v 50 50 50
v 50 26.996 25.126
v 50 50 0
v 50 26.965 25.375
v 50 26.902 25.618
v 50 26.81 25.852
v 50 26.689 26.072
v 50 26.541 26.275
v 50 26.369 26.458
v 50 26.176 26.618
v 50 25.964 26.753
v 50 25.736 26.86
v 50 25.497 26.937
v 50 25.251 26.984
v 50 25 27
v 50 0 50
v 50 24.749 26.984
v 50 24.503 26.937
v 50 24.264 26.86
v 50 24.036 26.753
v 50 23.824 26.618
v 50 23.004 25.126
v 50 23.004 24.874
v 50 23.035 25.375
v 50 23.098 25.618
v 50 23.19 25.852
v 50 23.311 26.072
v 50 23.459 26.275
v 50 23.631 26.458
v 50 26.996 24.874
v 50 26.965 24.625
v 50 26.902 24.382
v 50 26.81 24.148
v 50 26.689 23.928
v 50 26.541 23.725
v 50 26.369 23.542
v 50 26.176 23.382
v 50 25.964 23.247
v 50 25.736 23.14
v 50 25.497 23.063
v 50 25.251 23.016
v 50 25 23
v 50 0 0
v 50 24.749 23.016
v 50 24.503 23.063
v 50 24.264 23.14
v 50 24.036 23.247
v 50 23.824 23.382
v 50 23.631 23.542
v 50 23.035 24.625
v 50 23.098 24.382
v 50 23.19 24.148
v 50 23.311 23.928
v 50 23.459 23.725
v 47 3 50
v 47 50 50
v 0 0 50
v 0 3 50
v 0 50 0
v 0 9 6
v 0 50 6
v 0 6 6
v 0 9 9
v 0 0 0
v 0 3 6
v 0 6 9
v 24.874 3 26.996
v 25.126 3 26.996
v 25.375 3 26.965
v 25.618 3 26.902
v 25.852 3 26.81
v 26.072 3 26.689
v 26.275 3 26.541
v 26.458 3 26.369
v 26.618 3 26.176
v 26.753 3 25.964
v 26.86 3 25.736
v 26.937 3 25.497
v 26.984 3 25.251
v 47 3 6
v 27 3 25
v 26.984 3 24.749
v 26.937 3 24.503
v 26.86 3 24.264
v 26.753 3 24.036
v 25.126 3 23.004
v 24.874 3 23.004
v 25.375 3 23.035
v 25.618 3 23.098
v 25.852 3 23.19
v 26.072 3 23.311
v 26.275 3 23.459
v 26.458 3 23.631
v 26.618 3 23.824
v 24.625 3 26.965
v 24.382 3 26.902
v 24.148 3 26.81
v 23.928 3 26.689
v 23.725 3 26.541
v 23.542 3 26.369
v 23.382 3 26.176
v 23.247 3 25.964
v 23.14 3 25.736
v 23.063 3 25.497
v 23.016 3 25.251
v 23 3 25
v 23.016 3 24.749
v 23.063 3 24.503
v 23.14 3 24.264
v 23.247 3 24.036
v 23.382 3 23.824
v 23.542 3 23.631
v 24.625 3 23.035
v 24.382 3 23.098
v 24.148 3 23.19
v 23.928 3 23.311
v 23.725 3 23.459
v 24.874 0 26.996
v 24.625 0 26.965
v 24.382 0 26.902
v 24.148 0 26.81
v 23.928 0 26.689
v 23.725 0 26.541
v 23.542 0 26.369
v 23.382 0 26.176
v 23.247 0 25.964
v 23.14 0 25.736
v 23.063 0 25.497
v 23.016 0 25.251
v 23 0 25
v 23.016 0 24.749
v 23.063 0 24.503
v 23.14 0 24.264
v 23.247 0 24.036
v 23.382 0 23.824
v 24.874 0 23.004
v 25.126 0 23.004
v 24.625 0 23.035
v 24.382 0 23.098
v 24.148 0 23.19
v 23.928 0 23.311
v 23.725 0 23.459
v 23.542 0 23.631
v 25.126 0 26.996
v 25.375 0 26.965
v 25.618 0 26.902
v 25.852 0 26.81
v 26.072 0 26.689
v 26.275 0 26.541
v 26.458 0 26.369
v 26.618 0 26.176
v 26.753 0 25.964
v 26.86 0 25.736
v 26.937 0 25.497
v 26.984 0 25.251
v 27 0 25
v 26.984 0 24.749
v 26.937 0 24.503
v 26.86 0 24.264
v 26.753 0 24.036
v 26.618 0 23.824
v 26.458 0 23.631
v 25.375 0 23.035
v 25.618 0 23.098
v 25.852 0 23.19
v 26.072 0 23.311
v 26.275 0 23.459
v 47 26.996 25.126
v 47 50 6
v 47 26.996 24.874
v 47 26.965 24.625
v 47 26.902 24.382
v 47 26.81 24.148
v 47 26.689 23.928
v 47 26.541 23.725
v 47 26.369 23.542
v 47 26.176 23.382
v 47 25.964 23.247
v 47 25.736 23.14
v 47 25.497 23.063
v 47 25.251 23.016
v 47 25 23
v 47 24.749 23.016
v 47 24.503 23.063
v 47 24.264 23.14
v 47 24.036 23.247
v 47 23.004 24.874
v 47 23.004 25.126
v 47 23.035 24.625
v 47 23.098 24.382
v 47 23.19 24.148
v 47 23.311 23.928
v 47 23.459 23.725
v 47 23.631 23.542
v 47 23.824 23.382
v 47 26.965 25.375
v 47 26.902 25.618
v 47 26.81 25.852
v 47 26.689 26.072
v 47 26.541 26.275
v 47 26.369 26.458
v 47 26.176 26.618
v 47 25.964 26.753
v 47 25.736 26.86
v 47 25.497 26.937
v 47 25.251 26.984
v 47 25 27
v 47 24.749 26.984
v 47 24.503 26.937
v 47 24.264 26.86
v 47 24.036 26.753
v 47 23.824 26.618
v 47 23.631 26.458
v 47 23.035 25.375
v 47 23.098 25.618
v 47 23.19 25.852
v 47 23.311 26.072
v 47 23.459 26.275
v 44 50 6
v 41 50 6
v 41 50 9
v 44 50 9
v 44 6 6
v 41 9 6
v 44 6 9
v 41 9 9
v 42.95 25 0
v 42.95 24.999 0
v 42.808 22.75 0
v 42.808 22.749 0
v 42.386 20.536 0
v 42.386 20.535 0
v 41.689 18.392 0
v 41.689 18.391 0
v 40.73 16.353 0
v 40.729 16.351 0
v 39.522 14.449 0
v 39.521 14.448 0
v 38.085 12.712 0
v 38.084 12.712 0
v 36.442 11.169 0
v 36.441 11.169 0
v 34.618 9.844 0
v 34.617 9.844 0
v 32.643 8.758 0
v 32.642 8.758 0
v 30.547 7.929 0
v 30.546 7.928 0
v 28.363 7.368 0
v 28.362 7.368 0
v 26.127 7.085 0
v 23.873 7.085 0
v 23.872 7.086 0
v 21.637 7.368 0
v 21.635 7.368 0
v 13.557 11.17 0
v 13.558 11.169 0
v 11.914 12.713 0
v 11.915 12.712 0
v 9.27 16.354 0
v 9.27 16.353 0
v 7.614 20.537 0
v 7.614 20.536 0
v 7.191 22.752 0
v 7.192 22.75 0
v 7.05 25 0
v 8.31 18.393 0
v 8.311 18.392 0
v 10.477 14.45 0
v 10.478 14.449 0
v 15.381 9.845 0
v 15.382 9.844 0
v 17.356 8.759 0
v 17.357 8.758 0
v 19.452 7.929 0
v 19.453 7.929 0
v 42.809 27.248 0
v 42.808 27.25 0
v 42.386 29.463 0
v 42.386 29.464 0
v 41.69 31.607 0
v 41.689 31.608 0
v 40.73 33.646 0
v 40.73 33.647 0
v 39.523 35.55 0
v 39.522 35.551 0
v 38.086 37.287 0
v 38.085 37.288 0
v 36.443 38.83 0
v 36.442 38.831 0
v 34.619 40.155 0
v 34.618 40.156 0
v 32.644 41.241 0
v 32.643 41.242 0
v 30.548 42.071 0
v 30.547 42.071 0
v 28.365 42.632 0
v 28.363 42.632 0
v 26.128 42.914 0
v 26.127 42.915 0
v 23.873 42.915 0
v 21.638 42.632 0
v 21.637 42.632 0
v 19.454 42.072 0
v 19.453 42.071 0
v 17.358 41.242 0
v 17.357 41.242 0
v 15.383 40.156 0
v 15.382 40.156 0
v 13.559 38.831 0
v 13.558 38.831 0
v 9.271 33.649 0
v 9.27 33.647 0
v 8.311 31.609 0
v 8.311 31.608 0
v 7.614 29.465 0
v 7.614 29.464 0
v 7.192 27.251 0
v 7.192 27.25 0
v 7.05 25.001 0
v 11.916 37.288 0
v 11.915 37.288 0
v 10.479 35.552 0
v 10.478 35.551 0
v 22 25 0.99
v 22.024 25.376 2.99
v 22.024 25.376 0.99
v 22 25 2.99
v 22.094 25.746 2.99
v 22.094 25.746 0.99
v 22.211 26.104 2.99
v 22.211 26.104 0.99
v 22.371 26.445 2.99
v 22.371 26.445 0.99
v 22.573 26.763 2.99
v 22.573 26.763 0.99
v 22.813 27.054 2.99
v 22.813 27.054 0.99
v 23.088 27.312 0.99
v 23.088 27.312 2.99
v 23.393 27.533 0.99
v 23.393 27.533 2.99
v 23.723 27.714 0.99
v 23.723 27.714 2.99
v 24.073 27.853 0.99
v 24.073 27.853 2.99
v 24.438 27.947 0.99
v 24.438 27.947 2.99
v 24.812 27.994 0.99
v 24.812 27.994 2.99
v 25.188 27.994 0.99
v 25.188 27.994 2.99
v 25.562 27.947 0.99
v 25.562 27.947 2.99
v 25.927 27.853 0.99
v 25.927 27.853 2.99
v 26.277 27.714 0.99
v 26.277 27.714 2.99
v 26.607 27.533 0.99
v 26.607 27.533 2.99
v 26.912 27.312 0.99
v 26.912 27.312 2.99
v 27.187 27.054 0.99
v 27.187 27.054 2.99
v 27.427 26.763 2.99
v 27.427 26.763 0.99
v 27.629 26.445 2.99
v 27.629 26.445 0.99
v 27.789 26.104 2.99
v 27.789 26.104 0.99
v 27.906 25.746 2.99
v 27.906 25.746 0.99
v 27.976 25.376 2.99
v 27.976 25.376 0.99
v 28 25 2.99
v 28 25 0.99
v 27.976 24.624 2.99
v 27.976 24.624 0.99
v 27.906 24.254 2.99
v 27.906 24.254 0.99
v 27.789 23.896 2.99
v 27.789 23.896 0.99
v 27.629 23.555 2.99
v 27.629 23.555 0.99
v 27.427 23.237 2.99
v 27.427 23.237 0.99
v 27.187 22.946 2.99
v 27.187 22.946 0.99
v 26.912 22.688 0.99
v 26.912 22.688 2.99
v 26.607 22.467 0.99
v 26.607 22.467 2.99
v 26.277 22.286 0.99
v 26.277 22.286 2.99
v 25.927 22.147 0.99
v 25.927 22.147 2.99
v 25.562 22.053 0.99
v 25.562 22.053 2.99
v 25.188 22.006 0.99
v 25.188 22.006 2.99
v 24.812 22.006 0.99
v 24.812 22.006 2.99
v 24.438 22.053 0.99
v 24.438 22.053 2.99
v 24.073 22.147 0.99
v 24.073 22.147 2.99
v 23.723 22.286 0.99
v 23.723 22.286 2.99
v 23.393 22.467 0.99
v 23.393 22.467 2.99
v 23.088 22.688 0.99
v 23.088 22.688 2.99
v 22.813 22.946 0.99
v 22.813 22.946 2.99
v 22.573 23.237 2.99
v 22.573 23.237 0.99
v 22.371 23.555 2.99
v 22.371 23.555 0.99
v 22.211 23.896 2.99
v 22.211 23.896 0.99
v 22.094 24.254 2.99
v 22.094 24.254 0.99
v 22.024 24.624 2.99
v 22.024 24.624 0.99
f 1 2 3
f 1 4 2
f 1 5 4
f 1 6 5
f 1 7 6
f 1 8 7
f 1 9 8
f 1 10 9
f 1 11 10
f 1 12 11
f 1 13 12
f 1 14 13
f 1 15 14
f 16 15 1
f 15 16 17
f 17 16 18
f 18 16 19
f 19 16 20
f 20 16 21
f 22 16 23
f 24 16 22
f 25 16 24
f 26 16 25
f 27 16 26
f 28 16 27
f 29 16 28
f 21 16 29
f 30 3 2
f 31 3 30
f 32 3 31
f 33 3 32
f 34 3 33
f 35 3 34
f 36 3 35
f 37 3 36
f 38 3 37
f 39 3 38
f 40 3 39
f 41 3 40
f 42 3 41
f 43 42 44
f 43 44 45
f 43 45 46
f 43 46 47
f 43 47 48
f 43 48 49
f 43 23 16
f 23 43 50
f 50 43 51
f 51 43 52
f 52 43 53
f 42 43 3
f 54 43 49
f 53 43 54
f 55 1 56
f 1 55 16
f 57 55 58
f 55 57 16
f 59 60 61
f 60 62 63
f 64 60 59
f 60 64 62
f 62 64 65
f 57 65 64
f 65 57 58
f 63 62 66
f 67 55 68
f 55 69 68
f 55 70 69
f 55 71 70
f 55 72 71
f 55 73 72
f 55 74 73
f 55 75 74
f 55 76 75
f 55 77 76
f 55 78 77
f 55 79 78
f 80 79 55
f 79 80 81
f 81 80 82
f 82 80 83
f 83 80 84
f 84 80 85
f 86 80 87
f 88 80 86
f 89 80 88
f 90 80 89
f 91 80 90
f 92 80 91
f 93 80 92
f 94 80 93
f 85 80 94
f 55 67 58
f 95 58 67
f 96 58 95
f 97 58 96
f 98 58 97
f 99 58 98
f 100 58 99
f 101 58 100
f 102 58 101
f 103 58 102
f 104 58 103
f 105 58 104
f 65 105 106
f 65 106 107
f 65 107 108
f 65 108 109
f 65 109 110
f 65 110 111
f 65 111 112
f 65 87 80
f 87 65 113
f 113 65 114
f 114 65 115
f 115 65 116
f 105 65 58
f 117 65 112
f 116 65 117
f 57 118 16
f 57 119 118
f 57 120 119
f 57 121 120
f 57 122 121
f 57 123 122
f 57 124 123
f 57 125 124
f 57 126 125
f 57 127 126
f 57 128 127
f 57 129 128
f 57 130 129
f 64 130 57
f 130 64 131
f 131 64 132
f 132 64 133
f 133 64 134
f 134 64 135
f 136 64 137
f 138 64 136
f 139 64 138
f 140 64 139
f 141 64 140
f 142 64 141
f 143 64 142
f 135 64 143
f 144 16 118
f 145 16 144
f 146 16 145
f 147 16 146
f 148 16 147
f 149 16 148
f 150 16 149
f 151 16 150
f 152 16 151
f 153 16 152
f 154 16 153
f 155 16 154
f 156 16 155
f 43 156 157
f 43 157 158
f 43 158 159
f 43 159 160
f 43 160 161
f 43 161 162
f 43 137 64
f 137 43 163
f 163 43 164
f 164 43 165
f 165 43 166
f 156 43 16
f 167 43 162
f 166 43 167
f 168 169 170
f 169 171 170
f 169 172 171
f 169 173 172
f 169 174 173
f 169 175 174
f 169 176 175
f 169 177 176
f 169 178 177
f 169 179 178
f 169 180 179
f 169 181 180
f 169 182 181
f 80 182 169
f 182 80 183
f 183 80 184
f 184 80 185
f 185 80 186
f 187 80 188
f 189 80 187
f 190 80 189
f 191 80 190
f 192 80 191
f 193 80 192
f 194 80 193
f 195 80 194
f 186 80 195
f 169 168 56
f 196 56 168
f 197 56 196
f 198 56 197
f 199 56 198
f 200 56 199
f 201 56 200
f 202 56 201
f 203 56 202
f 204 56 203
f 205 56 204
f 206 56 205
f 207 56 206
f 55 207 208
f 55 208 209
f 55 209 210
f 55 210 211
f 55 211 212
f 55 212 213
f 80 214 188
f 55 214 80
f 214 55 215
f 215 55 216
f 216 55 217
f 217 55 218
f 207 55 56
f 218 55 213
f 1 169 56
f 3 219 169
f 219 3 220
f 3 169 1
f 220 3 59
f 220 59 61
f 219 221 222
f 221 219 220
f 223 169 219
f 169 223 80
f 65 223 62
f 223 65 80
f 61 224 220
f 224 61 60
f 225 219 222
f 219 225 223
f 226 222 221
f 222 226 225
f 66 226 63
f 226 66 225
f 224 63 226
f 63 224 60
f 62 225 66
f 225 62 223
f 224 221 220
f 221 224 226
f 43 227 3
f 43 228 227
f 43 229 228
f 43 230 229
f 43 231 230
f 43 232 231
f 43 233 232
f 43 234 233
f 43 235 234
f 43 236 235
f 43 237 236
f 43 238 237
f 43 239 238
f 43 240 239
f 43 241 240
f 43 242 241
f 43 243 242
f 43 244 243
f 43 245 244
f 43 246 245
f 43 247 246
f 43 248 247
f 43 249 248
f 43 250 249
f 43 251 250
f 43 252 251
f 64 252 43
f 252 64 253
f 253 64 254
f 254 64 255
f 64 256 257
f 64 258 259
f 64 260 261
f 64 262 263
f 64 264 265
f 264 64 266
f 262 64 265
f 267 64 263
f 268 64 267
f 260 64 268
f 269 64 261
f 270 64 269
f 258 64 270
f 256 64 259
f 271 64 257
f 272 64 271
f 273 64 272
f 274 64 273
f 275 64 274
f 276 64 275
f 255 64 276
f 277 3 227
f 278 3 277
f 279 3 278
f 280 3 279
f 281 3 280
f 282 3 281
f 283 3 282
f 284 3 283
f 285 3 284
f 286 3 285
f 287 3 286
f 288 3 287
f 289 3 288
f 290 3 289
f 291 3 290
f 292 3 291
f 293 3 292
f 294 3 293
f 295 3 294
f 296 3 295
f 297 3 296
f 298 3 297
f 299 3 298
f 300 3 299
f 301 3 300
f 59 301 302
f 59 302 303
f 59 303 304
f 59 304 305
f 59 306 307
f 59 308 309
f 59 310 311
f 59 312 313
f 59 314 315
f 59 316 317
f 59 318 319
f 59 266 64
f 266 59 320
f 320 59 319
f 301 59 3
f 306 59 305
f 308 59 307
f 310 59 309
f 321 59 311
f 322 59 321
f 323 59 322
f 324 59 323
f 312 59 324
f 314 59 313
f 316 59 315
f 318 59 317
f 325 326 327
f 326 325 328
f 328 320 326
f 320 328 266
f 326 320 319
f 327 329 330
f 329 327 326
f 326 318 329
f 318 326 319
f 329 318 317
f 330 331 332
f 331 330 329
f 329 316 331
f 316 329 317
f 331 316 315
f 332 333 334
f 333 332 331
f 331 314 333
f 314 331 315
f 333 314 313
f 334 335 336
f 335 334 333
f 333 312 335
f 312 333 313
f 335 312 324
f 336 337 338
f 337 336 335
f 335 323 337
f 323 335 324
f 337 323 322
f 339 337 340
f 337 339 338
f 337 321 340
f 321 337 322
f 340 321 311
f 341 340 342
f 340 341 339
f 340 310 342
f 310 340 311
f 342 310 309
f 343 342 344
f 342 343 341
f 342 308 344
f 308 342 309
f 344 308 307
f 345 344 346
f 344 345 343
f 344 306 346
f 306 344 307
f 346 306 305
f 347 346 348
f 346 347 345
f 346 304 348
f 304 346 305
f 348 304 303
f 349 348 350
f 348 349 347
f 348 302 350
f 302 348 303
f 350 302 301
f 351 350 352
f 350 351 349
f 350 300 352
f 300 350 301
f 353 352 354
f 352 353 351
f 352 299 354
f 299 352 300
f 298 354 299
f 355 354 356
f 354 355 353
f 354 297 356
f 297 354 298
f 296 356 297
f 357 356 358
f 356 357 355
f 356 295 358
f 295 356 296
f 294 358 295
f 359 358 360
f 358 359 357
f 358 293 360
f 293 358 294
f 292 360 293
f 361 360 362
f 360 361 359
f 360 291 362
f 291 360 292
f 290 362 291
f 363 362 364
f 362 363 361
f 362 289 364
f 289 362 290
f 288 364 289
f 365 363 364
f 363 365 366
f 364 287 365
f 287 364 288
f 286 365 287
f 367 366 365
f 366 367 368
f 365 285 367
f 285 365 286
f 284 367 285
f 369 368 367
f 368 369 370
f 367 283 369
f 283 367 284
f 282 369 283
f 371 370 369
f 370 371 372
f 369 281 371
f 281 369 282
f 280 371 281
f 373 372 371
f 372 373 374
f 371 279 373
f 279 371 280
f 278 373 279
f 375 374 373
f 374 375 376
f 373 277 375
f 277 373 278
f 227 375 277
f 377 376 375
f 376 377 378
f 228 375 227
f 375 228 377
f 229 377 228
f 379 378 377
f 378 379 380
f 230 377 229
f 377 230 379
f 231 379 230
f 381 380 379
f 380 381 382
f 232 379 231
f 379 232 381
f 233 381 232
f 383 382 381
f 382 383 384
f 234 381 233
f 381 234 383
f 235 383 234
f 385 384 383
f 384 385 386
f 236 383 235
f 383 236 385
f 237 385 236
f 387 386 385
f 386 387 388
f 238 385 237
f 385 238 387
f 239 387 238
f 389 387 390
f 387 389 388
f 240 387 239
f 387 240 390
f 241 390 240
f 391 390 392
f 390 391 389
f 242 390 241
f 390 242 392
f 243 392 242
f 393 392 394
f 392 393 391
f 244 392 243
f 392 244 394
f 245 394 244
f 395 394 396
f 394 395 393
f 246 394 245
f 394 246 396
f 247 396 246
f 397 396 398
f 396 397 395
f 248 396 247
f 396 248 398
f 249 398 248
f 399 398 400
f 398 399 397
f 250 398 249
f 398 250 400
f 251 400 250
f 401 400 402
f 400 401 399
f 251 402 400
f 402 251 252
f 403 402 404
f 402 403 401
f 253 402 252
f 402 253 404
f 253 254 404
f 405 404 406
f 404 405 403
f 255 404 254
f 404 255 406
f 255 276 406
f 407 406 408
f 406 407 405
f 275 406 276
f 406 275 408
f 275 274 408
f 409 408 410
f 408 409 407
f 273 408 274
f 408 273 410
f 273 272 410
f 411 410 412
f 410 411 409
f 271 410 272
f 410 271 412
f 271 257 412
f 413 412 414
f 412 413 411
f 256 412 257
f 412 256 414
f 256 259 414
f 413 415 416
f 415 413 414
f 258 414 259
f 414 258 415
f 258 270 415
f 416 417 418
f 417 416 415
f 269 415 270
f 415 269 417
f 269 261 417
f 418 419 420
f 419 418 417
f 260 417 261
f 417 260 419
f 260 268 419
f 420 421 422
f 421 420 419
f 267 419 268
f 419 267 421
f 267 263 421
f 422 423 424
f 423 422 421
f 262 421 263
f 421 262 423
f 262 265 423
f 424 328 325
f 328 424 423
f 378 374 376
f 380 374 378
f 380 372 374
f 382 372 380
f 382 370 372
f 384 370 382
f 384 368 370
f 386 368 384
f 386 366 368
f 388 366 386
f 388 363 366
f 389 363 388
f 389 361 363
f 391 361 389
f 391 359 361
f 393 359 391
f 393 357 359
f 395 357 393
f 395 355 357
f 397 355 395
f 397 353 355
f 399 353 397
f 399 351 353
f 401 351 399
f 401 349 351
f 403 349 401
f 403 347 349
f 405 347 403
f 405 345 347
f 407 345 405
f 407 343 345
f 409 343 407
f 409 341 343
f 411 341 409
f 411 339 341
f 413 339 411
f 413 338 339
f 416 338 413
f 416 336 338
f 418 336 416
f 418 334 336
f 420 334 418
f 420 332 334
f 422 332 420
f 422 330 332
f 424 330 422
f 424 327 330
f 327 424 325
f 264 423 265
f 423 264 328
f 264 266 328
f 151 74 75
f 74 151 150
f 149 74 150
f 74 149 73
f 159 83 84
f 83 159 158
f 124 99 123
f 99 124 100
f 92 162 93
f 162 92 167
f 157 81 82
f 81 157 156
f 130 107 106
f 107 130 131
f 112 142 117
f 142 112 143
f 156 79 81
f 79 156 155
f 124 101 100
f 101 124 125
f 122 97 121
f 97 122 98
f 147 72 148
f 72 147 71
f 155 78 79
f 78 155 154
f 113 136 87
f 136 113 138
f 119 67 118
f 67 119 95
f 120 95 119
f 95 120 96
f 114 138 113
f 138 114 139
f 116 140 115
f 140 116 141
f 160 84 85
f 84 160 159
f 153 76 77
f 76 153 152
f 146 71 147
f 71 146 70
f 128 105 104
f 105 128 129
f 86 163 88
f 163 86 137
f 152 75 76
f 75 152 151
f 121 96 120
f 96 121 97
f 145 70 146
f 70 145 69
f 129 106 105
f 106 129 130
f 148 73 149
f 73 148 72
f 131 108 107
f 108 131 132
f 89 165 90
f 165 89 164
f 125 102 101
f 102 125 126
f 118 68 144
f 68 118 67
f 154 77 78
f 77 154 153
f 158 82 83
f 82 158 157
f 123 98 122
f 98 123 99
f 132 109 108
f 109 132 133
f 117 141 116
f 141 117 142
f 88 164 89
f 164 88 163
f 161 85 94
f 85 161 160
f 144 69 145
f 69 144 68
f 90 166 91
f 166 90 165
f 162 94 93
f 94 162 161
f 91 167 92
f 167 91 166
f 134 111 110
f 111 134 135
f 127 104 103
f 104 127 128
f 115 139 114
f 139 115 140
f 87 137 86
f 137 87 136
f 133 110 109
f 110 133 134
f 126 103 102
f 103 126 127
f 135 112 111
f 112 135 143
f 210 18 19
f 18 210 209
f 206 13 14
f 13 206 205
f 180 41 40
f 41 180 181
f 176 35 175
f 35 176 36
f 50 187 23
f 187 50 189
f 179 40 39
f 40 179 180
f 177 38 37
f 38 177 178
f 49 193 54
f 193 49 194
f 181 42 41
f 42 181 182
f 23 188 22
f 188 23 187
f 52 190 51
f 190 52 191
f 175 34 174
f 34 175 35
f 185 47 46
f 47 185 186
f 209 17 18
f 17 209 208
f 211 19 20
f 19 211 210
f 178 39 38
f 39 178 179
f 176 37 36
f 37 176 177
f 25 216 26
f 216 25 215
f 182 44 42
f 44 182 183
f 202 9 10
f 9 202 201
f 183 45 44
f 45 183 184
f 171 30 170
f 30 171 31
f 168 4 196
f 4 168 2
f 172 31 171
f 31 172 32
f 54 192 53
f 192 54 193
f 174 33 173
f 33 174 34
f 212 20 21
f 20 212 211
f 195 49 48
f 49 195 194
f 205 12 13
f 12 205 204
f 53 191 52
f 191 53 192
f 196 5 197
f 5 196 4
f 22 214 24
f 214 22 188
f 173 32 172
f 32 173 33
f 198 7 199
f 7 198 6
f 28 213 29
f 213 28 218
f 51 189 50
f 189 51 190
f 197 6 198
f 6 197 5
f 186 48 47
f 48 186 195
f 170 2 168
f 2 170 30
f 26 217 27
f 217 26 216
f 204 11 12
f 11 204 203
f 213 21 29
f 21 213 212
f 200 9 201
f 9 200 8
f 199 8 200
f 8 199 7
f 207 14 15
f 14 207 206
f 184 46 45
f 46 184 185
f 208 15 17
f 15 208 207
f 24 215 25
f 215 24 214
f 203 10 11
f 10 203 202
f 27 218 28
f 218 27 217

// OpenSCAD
// file: enclosure_lib.scad
module SimpleCorner(wallWidth = 3,
                    totalWidth = 50,
                    totalHeight = 50,
                    totalDepth = 50,
                    gutterWidth = 3)
{
    // back wall
    cube([totalWidth,wallWidth,totalHeight]);
    // side wall
    translate([totalWidth,0,0])
        rotate([0,0,90])
            cube([totalDepth,wallWidth,totalHeight]);
    // base
    translate([0,totalDepth,0])
        rotate([90, 0, 0])
            cube([totalWidth,
                  wallWidth,
                  totalDepth]);
    // back gutter
    translate([0,
               wallWidth + gutterWidth,
               wallWidth * 2])
        rotate([0,90,0])
            cube([wallWidth, 
                  wallWidth, 
                  totalWidth - wallWidth - gutterWidth]);
    // side gutter
    translate([totalWidth - 2 * wallWidth - gutterWidth,
               totalDepth,
               wallWidth])
        rotate([90,0,0])
            cube([wallWidth, 
                  wallWidth, 
                  totalDepth - wallWidth - gutterWidth]);
    // gutter fill
    cube(3);
}
module Cone(holeRadius = 3)
{
    centerRadius    = 3;
    centerHeight    = 2;
    masterRadius    = 18;
    totalHeight     = 3;
    tanAlpha        = totalHeight / (masterRadius - centerRadius);
    holeHeight      = tanAlpha * (masterRadius - holeRadius);
    rotate_extrude()
        polygon(points=[
            [0, 0],
            [masterRadius, 0],
            [holeRadius, holeHeight],
            [holeRadius, 1],
            [0, 1]
        ]);
}
module Base(width = 50,
       depth = 50,
       halfHeight = 3)
{
    cube([width, depth, halfHeight]);
    translate([width / 2, depth / 2, halfHeight])
        Cone(3.5);
}

module BasedCorner(wallWidth = 3,
                   width = 50,
                   height = 50,
                   depth = 50,
                   gutterWidth = 3.4)
{
    translate([0, 0, wallWidth])
        union() {
            SimpleCorner(wallWidth, 
                         width, 
                         height - wallWidth, 
                         depth,
                         gutterWidth);
            translate([0,0, -wallWidth])
                difference() {
                    cube([width, depth, wallWidth]);
                    translate([width/2, depth/2, -.01])
                        Cone();
            }
        }
}

module top_profile(gutterWidth = 3) 
{
    polygon([
        [0, 0],
        [0, 9],
        [6, 9],
        [6, 6],
        [21,6],
        [21,3],
        [6 + gutterWidth, 3],
        [6 + gutterWidth, 0],
        [3 + gutterWidth, 0],
        [3 + gutterWidth, 3],
        [3, 3],
        [3, 0],
    ]);
}


module CableCoverBorderProfile(
    width = 6,
    borderHeight = 3,
    gutterHeight = 3,
    gutterWidth = 3)
{
    polygon([
        [0,0],
        [width, 0],
        [width, borderHeight],
        [width - gutterWidth, borderHeight],
        [width - gutterWidth, borderHeight + gutterHeight],
        [width, borderHeight + gutterHeight],
        [width, 2 * borderHeight + gutterHeight],
        [0, 2 * borderHeight + gutterHeight]
    ]);
}
module CableCoverBorderLinear(height = 10)
{
    linear_extrude(height)
        CableCoverBorderProfile();
}
union()
{
    //rotate_extrude(180)
    //    CableCoverBorderProfile();
    CableCoverBorderLinear();
    translate([-6, 3, 0])
        cube([6, 3, 10]);
    translate([-6, 9, 0])
        rotate([0, 0, 180])
            CableCoverBorderLinear();
}
// main file
use <enclosure_lib.scad>

$fn=50;
wall_h = 3;
h=50;
d=50;
w=50;
gutter_width=3.4;

difference() {
    BasedCorner(wall_h, w, h, d, gutter_width);
    // back hole
    translate([
        w / 2 ,
        wall_h+1,
        h / 2
    ])
        rotate([90])
            cylinder(5, 2, 2);
    // side hole
    translate([
        w - wall_h -1,
        w / 2,
        h / 2
    ])
        rotate([0, 90])
            cylinder(5, 2, 2);
}
